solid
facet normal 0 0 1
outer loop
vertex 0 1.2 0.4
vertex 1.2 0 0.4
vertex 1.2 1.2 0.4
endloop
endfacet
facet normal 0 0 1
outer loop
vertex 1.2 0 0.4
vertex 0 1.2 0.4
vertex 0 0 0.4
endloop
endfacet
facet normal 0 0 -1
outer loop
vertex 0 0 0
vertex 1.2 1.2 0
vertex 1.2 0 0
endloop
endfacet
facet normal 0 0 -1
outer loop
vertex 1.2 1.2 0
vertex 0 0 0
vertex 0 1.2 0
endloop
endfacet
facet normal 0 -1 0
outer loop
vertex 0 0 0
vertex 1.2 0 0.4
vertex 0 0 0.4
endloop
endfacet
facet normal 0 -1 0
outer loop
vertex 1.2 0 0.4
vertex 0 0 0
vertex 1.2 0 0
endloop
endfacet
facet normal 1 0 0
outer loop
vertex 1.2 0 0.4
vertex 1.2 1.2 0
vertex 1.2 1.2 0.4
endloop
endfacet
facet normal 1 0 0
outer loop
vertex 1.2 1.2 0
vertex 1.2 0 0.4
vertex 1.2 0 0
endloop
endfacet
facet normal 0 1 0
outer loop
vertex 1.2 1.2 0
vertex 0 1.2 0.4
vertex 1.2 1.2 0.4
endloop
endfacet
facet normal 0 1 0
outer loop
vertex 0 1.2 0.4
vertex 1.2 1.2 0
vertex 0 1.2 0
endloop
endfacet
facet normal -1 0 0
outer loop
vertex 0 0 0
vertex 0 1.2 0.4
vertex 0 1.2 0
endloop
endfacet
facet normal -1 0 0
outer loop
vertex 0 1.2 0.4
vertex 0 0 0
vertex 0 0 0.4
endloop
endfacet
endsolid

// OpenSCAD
/* Warning, this is a very basic generator with a lot of approximation 
input data : [X2DFN, K6A, 1.2x1.2x0.4mm, 6, , A, C04-01259A]
generated by com.zoubworld.electronics.cad.model3d.Basic
Date : Sun Feb 15 10:50:49 CET 2026
*/

//body
color("black")
translate([0,0,0])
cube([1.2,1.2,0.4], center=false);
